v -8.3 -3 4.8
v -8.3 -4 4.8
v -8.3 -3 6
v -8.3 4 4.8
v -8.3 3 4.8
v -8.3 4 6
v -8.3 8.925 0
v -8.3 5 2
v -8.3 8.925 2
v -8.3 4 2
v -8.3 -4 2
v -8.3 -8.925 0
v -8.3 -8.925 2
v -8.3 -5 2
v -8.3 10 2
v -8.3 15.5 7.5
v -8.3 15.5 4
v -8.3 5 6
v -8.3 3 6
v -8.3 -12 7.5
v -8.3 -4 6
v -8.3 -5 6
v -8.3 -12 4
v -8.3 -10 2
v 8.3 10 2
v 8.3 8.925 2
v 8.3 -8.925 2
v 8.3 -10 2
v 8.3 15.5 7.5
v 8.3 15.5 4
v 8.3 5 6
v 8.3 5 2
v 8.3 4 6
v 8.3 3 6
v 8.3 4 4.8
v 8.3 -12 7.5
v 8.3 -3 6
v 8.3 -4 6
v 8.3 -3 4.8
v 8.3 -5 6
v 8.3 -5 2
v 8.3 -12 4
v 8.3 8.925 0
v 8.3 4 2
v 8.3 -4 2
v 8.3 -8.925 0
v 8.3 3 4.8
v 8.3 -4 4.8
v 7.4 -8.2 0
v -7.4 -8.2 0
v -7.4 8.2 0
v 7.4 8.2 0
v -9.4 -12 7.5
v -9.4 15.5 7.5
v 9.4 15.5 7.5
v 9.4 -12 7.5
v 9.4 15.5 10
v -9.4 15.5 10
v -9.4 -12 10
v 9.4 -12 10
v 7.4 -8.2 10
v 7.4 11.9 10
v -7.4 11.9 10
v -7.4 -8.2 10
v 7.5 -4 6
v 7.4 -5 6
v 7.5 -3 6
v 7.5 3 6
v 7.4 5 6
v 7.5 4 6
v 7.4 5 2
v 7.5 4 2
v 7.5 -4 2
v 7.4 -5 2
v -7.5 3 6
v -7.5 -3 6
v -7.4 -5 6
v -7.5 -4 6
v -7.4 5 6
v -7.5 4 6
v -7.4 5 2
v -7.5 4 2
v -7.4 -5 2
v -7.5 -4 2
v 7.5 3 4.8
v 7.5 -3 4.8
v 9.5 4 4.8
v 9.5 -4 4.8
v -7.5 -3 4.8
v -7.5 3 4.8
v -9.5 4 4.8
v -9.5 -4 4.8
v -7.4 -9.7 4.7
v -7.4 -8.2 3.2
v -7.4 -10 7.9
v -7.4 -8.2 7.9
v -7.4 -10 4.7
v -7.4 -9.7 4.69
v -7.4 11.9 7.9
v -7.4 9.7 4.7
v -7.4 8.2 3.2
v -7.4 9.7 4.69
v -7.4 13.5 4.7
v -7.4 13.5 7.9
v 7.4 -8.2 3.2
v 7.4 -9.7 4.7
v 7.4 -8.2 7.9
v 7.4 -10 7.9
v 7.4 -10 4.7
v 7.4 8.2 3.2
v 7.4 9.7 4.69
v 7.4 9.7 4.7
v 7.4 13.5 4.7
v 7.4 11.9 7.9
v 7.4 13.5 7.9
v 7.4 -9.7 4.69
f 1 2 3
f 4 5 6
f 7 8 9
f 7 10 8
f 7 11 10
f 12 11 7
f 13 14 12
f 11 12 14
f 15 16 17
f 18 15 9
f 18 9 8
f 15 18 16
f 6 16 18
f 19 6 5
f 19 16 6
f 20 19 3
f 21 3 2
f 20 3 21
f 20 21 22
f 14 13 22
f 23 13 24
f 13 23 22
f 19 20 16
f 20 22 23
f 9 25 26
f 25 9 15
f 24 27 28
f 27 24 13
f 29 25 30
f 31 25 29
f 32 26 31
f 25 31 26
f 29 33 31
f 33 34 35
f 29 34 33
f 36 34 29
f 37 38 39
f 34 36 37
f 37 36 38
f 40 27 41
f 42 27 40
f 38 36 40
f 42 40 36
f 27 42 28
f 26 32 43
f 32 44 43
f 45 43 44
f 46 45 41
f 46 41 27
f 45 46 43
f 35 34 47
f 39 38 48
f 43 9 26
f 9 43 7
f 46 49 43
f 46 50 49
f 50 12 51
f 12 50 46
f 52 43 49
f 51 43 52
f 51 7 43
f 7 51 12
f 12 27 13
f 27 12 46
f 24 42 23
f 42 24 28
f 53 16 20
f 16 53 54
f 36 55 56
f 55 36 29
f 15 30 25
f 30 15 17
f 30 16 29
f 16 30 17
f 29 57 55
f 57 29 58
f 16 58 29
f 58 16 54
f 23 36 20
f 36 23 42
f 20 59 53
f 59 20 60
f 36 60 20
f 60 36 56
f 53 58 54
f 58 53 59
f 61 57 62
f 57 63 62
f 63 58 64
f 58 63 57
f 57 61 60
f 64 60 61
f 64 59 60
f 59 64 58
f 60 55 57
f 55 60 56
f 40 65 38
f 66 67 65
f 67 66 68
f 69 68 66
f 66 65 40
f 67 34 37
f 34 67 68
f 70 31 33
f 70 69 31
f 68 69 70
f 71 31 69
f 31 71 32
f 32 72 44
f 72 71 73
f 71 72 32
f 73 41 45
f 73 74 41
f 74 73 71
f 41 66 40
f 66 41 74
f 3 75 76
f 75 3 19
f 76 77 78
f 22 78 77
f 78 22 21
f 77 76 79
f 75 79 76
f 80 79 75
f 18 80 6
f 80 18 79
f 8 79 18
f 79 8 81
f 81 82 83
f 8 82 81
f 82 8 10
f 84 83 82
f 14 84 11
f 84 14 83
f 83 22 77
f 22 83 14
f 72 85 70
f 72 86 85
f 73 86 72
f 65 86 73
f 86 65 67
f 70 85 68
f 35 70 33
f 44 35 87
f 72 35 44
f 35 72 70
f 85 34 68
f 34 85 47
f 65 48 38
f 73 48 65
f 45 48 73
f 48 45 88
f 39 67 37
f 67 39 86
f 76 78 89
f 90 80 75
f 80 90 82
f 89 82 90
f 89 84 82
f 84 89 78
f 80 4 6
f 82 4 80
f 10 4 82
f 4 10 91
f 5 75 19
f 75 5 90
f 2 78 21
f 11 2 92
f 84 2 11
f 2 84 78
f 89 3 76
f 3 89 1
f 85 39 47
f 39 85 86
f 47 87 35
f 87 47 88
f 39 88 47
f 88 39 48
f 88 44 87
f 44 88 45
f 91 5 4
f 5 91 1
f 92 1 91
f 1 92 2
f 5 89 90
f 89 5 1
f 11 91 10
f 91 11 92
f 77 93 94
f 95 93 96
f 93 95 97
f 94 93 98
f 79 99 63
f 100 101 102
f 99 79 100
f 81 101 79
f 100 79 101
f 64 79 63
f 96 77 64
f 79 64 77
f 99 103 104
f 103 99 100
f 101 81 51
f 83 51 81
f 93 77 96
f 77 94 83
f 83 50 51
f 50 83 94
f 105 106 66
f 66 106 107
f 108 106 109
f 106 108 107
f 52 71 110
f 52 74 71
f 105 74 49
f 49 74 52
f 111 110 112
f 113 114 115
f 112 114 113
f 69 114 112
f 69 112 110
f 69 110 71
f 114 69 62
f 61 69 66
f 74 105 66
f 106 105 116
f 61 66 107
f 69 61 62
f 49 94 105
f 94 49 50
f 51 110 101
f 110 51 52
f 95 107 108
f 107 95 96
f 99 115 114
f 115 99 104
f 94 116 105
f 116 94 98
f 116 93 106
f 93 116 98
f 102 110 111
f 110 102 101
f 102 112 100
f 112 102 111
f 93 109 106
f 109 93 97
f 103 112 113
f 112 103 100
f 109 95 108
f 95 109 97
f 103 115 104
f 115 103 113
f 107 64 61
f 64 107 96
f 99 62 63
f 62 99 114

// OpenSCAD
module mybox(width=0, height=0, depth=0, x=0, x1=undef, x2=undef, y=0, y1=undef, y2=undef, z=0, z1=undef, z2=undef) {
    center = [
        x1 == undef || x2 == undef ? x : (x1+x2)/2,
        y1 == undef || y2 == undef ? y : (y1+y2)/2,
        z1 == undef || z2 == undef ? z : (z1+z2)/2,
    ];
    size = [
        x1 == undef || x2 == undef ? width : abs(x2-x1),
        y1 == undef || y2 == undef ? height : abs(y2-y1),
        z1 == undef || z2 == undef ? depth : abs(z2-z1),
    ];
    translate(center) {
        cube(size=size, center=true);
    }
};

intersection() {
    //mybox(x1=-50, x2=0, height=100, depth=50);
    
    difference() {
        union() {
            difference() {
                union() {
                    mybox(width=16.6, height=17.85, z1=0.00, z2= 2);
                    hull() {
                        mybox(width=16.6, height=20, z1=2, z2= 7.50);
                        mybox(width=16.6, y1=-12, y2=15.5, z1=4.00, z2= 7.50);
                    }
                    mybox(width=18.8, y1=-12, y2=15.5, z1=7.50, z2=10.00);
                    //mybox(width=19.5, y1=-12, y2=15.5, z1=8.50, z2=10.00);
                };
                union() {
                    mybox(x1= 6, x2= 10,   height=10,    z1=2.00, z2=6);
                    mybox(x1=-6, x2=-10,   height=10,    z1=2.00, z2=6);
                }
            }

            mybox(x1= 7.5, x2= 8.3,   y = 3.5, height= 1, z1=1, z2=7);
            mybox(x1= 7.5, x2= 8.3,   y = -3.5, height= 1, z1=1, z2=7);
            mybox(x1=-7.5, x2=-8.3,   y = 3.5, height= 1, z1=1, z2=7);
            mybox(x1=-7.5, x2=-8.3,   y = -3.5, height= 1, z1=1, z2=7);
            hull() {
                mybox(x1= 7.5, x2= 9.5,   height=8, z=4.8, depth=0.0001);
                mybox(x1= 7.5, x2= 8.3,   height=8,  z=2, depth=0.0001);
            }
            hull() {
                mybox(x1=-7.5, x2=-9.5,   height=8, z=4.8, depth=0.0001);
                mybox(x1=-7.5, x2=-8.3,   height=8,  z=2, depth=0.0001);
            }
        }
        
        mybox(width=14.8, y1=-8.2, y2=8.2, z1=0, z2=3.2);
        hull() {
            mybox(width=14.8, y1=-8.2, y2=8.2, z1=3.2, z2=7.9);
            mybox(width=14.8, y1=-9.7, y2=9.7, z1=4.69, z2=4.7);
            //mybox(width=14.8, y1=-8.2, y2=8.2, z1=3.2, z2=1.7);
            //mybox(width=14.8, y1=-8.2, y2=11.7, z1=4.7, z2=6.5);
            //mybox(width=14.8, y1=-11.2, y2=14.9, z1=4.9, z2=7.9);
        }
        mybox(width=14.8, y1=-10, y2=13.5, z1=4.7, z2=7.9);
        mybox(width=14.8, y1=-8.2, y2=11.9, z1=7.9, z2=10);
    }
}
